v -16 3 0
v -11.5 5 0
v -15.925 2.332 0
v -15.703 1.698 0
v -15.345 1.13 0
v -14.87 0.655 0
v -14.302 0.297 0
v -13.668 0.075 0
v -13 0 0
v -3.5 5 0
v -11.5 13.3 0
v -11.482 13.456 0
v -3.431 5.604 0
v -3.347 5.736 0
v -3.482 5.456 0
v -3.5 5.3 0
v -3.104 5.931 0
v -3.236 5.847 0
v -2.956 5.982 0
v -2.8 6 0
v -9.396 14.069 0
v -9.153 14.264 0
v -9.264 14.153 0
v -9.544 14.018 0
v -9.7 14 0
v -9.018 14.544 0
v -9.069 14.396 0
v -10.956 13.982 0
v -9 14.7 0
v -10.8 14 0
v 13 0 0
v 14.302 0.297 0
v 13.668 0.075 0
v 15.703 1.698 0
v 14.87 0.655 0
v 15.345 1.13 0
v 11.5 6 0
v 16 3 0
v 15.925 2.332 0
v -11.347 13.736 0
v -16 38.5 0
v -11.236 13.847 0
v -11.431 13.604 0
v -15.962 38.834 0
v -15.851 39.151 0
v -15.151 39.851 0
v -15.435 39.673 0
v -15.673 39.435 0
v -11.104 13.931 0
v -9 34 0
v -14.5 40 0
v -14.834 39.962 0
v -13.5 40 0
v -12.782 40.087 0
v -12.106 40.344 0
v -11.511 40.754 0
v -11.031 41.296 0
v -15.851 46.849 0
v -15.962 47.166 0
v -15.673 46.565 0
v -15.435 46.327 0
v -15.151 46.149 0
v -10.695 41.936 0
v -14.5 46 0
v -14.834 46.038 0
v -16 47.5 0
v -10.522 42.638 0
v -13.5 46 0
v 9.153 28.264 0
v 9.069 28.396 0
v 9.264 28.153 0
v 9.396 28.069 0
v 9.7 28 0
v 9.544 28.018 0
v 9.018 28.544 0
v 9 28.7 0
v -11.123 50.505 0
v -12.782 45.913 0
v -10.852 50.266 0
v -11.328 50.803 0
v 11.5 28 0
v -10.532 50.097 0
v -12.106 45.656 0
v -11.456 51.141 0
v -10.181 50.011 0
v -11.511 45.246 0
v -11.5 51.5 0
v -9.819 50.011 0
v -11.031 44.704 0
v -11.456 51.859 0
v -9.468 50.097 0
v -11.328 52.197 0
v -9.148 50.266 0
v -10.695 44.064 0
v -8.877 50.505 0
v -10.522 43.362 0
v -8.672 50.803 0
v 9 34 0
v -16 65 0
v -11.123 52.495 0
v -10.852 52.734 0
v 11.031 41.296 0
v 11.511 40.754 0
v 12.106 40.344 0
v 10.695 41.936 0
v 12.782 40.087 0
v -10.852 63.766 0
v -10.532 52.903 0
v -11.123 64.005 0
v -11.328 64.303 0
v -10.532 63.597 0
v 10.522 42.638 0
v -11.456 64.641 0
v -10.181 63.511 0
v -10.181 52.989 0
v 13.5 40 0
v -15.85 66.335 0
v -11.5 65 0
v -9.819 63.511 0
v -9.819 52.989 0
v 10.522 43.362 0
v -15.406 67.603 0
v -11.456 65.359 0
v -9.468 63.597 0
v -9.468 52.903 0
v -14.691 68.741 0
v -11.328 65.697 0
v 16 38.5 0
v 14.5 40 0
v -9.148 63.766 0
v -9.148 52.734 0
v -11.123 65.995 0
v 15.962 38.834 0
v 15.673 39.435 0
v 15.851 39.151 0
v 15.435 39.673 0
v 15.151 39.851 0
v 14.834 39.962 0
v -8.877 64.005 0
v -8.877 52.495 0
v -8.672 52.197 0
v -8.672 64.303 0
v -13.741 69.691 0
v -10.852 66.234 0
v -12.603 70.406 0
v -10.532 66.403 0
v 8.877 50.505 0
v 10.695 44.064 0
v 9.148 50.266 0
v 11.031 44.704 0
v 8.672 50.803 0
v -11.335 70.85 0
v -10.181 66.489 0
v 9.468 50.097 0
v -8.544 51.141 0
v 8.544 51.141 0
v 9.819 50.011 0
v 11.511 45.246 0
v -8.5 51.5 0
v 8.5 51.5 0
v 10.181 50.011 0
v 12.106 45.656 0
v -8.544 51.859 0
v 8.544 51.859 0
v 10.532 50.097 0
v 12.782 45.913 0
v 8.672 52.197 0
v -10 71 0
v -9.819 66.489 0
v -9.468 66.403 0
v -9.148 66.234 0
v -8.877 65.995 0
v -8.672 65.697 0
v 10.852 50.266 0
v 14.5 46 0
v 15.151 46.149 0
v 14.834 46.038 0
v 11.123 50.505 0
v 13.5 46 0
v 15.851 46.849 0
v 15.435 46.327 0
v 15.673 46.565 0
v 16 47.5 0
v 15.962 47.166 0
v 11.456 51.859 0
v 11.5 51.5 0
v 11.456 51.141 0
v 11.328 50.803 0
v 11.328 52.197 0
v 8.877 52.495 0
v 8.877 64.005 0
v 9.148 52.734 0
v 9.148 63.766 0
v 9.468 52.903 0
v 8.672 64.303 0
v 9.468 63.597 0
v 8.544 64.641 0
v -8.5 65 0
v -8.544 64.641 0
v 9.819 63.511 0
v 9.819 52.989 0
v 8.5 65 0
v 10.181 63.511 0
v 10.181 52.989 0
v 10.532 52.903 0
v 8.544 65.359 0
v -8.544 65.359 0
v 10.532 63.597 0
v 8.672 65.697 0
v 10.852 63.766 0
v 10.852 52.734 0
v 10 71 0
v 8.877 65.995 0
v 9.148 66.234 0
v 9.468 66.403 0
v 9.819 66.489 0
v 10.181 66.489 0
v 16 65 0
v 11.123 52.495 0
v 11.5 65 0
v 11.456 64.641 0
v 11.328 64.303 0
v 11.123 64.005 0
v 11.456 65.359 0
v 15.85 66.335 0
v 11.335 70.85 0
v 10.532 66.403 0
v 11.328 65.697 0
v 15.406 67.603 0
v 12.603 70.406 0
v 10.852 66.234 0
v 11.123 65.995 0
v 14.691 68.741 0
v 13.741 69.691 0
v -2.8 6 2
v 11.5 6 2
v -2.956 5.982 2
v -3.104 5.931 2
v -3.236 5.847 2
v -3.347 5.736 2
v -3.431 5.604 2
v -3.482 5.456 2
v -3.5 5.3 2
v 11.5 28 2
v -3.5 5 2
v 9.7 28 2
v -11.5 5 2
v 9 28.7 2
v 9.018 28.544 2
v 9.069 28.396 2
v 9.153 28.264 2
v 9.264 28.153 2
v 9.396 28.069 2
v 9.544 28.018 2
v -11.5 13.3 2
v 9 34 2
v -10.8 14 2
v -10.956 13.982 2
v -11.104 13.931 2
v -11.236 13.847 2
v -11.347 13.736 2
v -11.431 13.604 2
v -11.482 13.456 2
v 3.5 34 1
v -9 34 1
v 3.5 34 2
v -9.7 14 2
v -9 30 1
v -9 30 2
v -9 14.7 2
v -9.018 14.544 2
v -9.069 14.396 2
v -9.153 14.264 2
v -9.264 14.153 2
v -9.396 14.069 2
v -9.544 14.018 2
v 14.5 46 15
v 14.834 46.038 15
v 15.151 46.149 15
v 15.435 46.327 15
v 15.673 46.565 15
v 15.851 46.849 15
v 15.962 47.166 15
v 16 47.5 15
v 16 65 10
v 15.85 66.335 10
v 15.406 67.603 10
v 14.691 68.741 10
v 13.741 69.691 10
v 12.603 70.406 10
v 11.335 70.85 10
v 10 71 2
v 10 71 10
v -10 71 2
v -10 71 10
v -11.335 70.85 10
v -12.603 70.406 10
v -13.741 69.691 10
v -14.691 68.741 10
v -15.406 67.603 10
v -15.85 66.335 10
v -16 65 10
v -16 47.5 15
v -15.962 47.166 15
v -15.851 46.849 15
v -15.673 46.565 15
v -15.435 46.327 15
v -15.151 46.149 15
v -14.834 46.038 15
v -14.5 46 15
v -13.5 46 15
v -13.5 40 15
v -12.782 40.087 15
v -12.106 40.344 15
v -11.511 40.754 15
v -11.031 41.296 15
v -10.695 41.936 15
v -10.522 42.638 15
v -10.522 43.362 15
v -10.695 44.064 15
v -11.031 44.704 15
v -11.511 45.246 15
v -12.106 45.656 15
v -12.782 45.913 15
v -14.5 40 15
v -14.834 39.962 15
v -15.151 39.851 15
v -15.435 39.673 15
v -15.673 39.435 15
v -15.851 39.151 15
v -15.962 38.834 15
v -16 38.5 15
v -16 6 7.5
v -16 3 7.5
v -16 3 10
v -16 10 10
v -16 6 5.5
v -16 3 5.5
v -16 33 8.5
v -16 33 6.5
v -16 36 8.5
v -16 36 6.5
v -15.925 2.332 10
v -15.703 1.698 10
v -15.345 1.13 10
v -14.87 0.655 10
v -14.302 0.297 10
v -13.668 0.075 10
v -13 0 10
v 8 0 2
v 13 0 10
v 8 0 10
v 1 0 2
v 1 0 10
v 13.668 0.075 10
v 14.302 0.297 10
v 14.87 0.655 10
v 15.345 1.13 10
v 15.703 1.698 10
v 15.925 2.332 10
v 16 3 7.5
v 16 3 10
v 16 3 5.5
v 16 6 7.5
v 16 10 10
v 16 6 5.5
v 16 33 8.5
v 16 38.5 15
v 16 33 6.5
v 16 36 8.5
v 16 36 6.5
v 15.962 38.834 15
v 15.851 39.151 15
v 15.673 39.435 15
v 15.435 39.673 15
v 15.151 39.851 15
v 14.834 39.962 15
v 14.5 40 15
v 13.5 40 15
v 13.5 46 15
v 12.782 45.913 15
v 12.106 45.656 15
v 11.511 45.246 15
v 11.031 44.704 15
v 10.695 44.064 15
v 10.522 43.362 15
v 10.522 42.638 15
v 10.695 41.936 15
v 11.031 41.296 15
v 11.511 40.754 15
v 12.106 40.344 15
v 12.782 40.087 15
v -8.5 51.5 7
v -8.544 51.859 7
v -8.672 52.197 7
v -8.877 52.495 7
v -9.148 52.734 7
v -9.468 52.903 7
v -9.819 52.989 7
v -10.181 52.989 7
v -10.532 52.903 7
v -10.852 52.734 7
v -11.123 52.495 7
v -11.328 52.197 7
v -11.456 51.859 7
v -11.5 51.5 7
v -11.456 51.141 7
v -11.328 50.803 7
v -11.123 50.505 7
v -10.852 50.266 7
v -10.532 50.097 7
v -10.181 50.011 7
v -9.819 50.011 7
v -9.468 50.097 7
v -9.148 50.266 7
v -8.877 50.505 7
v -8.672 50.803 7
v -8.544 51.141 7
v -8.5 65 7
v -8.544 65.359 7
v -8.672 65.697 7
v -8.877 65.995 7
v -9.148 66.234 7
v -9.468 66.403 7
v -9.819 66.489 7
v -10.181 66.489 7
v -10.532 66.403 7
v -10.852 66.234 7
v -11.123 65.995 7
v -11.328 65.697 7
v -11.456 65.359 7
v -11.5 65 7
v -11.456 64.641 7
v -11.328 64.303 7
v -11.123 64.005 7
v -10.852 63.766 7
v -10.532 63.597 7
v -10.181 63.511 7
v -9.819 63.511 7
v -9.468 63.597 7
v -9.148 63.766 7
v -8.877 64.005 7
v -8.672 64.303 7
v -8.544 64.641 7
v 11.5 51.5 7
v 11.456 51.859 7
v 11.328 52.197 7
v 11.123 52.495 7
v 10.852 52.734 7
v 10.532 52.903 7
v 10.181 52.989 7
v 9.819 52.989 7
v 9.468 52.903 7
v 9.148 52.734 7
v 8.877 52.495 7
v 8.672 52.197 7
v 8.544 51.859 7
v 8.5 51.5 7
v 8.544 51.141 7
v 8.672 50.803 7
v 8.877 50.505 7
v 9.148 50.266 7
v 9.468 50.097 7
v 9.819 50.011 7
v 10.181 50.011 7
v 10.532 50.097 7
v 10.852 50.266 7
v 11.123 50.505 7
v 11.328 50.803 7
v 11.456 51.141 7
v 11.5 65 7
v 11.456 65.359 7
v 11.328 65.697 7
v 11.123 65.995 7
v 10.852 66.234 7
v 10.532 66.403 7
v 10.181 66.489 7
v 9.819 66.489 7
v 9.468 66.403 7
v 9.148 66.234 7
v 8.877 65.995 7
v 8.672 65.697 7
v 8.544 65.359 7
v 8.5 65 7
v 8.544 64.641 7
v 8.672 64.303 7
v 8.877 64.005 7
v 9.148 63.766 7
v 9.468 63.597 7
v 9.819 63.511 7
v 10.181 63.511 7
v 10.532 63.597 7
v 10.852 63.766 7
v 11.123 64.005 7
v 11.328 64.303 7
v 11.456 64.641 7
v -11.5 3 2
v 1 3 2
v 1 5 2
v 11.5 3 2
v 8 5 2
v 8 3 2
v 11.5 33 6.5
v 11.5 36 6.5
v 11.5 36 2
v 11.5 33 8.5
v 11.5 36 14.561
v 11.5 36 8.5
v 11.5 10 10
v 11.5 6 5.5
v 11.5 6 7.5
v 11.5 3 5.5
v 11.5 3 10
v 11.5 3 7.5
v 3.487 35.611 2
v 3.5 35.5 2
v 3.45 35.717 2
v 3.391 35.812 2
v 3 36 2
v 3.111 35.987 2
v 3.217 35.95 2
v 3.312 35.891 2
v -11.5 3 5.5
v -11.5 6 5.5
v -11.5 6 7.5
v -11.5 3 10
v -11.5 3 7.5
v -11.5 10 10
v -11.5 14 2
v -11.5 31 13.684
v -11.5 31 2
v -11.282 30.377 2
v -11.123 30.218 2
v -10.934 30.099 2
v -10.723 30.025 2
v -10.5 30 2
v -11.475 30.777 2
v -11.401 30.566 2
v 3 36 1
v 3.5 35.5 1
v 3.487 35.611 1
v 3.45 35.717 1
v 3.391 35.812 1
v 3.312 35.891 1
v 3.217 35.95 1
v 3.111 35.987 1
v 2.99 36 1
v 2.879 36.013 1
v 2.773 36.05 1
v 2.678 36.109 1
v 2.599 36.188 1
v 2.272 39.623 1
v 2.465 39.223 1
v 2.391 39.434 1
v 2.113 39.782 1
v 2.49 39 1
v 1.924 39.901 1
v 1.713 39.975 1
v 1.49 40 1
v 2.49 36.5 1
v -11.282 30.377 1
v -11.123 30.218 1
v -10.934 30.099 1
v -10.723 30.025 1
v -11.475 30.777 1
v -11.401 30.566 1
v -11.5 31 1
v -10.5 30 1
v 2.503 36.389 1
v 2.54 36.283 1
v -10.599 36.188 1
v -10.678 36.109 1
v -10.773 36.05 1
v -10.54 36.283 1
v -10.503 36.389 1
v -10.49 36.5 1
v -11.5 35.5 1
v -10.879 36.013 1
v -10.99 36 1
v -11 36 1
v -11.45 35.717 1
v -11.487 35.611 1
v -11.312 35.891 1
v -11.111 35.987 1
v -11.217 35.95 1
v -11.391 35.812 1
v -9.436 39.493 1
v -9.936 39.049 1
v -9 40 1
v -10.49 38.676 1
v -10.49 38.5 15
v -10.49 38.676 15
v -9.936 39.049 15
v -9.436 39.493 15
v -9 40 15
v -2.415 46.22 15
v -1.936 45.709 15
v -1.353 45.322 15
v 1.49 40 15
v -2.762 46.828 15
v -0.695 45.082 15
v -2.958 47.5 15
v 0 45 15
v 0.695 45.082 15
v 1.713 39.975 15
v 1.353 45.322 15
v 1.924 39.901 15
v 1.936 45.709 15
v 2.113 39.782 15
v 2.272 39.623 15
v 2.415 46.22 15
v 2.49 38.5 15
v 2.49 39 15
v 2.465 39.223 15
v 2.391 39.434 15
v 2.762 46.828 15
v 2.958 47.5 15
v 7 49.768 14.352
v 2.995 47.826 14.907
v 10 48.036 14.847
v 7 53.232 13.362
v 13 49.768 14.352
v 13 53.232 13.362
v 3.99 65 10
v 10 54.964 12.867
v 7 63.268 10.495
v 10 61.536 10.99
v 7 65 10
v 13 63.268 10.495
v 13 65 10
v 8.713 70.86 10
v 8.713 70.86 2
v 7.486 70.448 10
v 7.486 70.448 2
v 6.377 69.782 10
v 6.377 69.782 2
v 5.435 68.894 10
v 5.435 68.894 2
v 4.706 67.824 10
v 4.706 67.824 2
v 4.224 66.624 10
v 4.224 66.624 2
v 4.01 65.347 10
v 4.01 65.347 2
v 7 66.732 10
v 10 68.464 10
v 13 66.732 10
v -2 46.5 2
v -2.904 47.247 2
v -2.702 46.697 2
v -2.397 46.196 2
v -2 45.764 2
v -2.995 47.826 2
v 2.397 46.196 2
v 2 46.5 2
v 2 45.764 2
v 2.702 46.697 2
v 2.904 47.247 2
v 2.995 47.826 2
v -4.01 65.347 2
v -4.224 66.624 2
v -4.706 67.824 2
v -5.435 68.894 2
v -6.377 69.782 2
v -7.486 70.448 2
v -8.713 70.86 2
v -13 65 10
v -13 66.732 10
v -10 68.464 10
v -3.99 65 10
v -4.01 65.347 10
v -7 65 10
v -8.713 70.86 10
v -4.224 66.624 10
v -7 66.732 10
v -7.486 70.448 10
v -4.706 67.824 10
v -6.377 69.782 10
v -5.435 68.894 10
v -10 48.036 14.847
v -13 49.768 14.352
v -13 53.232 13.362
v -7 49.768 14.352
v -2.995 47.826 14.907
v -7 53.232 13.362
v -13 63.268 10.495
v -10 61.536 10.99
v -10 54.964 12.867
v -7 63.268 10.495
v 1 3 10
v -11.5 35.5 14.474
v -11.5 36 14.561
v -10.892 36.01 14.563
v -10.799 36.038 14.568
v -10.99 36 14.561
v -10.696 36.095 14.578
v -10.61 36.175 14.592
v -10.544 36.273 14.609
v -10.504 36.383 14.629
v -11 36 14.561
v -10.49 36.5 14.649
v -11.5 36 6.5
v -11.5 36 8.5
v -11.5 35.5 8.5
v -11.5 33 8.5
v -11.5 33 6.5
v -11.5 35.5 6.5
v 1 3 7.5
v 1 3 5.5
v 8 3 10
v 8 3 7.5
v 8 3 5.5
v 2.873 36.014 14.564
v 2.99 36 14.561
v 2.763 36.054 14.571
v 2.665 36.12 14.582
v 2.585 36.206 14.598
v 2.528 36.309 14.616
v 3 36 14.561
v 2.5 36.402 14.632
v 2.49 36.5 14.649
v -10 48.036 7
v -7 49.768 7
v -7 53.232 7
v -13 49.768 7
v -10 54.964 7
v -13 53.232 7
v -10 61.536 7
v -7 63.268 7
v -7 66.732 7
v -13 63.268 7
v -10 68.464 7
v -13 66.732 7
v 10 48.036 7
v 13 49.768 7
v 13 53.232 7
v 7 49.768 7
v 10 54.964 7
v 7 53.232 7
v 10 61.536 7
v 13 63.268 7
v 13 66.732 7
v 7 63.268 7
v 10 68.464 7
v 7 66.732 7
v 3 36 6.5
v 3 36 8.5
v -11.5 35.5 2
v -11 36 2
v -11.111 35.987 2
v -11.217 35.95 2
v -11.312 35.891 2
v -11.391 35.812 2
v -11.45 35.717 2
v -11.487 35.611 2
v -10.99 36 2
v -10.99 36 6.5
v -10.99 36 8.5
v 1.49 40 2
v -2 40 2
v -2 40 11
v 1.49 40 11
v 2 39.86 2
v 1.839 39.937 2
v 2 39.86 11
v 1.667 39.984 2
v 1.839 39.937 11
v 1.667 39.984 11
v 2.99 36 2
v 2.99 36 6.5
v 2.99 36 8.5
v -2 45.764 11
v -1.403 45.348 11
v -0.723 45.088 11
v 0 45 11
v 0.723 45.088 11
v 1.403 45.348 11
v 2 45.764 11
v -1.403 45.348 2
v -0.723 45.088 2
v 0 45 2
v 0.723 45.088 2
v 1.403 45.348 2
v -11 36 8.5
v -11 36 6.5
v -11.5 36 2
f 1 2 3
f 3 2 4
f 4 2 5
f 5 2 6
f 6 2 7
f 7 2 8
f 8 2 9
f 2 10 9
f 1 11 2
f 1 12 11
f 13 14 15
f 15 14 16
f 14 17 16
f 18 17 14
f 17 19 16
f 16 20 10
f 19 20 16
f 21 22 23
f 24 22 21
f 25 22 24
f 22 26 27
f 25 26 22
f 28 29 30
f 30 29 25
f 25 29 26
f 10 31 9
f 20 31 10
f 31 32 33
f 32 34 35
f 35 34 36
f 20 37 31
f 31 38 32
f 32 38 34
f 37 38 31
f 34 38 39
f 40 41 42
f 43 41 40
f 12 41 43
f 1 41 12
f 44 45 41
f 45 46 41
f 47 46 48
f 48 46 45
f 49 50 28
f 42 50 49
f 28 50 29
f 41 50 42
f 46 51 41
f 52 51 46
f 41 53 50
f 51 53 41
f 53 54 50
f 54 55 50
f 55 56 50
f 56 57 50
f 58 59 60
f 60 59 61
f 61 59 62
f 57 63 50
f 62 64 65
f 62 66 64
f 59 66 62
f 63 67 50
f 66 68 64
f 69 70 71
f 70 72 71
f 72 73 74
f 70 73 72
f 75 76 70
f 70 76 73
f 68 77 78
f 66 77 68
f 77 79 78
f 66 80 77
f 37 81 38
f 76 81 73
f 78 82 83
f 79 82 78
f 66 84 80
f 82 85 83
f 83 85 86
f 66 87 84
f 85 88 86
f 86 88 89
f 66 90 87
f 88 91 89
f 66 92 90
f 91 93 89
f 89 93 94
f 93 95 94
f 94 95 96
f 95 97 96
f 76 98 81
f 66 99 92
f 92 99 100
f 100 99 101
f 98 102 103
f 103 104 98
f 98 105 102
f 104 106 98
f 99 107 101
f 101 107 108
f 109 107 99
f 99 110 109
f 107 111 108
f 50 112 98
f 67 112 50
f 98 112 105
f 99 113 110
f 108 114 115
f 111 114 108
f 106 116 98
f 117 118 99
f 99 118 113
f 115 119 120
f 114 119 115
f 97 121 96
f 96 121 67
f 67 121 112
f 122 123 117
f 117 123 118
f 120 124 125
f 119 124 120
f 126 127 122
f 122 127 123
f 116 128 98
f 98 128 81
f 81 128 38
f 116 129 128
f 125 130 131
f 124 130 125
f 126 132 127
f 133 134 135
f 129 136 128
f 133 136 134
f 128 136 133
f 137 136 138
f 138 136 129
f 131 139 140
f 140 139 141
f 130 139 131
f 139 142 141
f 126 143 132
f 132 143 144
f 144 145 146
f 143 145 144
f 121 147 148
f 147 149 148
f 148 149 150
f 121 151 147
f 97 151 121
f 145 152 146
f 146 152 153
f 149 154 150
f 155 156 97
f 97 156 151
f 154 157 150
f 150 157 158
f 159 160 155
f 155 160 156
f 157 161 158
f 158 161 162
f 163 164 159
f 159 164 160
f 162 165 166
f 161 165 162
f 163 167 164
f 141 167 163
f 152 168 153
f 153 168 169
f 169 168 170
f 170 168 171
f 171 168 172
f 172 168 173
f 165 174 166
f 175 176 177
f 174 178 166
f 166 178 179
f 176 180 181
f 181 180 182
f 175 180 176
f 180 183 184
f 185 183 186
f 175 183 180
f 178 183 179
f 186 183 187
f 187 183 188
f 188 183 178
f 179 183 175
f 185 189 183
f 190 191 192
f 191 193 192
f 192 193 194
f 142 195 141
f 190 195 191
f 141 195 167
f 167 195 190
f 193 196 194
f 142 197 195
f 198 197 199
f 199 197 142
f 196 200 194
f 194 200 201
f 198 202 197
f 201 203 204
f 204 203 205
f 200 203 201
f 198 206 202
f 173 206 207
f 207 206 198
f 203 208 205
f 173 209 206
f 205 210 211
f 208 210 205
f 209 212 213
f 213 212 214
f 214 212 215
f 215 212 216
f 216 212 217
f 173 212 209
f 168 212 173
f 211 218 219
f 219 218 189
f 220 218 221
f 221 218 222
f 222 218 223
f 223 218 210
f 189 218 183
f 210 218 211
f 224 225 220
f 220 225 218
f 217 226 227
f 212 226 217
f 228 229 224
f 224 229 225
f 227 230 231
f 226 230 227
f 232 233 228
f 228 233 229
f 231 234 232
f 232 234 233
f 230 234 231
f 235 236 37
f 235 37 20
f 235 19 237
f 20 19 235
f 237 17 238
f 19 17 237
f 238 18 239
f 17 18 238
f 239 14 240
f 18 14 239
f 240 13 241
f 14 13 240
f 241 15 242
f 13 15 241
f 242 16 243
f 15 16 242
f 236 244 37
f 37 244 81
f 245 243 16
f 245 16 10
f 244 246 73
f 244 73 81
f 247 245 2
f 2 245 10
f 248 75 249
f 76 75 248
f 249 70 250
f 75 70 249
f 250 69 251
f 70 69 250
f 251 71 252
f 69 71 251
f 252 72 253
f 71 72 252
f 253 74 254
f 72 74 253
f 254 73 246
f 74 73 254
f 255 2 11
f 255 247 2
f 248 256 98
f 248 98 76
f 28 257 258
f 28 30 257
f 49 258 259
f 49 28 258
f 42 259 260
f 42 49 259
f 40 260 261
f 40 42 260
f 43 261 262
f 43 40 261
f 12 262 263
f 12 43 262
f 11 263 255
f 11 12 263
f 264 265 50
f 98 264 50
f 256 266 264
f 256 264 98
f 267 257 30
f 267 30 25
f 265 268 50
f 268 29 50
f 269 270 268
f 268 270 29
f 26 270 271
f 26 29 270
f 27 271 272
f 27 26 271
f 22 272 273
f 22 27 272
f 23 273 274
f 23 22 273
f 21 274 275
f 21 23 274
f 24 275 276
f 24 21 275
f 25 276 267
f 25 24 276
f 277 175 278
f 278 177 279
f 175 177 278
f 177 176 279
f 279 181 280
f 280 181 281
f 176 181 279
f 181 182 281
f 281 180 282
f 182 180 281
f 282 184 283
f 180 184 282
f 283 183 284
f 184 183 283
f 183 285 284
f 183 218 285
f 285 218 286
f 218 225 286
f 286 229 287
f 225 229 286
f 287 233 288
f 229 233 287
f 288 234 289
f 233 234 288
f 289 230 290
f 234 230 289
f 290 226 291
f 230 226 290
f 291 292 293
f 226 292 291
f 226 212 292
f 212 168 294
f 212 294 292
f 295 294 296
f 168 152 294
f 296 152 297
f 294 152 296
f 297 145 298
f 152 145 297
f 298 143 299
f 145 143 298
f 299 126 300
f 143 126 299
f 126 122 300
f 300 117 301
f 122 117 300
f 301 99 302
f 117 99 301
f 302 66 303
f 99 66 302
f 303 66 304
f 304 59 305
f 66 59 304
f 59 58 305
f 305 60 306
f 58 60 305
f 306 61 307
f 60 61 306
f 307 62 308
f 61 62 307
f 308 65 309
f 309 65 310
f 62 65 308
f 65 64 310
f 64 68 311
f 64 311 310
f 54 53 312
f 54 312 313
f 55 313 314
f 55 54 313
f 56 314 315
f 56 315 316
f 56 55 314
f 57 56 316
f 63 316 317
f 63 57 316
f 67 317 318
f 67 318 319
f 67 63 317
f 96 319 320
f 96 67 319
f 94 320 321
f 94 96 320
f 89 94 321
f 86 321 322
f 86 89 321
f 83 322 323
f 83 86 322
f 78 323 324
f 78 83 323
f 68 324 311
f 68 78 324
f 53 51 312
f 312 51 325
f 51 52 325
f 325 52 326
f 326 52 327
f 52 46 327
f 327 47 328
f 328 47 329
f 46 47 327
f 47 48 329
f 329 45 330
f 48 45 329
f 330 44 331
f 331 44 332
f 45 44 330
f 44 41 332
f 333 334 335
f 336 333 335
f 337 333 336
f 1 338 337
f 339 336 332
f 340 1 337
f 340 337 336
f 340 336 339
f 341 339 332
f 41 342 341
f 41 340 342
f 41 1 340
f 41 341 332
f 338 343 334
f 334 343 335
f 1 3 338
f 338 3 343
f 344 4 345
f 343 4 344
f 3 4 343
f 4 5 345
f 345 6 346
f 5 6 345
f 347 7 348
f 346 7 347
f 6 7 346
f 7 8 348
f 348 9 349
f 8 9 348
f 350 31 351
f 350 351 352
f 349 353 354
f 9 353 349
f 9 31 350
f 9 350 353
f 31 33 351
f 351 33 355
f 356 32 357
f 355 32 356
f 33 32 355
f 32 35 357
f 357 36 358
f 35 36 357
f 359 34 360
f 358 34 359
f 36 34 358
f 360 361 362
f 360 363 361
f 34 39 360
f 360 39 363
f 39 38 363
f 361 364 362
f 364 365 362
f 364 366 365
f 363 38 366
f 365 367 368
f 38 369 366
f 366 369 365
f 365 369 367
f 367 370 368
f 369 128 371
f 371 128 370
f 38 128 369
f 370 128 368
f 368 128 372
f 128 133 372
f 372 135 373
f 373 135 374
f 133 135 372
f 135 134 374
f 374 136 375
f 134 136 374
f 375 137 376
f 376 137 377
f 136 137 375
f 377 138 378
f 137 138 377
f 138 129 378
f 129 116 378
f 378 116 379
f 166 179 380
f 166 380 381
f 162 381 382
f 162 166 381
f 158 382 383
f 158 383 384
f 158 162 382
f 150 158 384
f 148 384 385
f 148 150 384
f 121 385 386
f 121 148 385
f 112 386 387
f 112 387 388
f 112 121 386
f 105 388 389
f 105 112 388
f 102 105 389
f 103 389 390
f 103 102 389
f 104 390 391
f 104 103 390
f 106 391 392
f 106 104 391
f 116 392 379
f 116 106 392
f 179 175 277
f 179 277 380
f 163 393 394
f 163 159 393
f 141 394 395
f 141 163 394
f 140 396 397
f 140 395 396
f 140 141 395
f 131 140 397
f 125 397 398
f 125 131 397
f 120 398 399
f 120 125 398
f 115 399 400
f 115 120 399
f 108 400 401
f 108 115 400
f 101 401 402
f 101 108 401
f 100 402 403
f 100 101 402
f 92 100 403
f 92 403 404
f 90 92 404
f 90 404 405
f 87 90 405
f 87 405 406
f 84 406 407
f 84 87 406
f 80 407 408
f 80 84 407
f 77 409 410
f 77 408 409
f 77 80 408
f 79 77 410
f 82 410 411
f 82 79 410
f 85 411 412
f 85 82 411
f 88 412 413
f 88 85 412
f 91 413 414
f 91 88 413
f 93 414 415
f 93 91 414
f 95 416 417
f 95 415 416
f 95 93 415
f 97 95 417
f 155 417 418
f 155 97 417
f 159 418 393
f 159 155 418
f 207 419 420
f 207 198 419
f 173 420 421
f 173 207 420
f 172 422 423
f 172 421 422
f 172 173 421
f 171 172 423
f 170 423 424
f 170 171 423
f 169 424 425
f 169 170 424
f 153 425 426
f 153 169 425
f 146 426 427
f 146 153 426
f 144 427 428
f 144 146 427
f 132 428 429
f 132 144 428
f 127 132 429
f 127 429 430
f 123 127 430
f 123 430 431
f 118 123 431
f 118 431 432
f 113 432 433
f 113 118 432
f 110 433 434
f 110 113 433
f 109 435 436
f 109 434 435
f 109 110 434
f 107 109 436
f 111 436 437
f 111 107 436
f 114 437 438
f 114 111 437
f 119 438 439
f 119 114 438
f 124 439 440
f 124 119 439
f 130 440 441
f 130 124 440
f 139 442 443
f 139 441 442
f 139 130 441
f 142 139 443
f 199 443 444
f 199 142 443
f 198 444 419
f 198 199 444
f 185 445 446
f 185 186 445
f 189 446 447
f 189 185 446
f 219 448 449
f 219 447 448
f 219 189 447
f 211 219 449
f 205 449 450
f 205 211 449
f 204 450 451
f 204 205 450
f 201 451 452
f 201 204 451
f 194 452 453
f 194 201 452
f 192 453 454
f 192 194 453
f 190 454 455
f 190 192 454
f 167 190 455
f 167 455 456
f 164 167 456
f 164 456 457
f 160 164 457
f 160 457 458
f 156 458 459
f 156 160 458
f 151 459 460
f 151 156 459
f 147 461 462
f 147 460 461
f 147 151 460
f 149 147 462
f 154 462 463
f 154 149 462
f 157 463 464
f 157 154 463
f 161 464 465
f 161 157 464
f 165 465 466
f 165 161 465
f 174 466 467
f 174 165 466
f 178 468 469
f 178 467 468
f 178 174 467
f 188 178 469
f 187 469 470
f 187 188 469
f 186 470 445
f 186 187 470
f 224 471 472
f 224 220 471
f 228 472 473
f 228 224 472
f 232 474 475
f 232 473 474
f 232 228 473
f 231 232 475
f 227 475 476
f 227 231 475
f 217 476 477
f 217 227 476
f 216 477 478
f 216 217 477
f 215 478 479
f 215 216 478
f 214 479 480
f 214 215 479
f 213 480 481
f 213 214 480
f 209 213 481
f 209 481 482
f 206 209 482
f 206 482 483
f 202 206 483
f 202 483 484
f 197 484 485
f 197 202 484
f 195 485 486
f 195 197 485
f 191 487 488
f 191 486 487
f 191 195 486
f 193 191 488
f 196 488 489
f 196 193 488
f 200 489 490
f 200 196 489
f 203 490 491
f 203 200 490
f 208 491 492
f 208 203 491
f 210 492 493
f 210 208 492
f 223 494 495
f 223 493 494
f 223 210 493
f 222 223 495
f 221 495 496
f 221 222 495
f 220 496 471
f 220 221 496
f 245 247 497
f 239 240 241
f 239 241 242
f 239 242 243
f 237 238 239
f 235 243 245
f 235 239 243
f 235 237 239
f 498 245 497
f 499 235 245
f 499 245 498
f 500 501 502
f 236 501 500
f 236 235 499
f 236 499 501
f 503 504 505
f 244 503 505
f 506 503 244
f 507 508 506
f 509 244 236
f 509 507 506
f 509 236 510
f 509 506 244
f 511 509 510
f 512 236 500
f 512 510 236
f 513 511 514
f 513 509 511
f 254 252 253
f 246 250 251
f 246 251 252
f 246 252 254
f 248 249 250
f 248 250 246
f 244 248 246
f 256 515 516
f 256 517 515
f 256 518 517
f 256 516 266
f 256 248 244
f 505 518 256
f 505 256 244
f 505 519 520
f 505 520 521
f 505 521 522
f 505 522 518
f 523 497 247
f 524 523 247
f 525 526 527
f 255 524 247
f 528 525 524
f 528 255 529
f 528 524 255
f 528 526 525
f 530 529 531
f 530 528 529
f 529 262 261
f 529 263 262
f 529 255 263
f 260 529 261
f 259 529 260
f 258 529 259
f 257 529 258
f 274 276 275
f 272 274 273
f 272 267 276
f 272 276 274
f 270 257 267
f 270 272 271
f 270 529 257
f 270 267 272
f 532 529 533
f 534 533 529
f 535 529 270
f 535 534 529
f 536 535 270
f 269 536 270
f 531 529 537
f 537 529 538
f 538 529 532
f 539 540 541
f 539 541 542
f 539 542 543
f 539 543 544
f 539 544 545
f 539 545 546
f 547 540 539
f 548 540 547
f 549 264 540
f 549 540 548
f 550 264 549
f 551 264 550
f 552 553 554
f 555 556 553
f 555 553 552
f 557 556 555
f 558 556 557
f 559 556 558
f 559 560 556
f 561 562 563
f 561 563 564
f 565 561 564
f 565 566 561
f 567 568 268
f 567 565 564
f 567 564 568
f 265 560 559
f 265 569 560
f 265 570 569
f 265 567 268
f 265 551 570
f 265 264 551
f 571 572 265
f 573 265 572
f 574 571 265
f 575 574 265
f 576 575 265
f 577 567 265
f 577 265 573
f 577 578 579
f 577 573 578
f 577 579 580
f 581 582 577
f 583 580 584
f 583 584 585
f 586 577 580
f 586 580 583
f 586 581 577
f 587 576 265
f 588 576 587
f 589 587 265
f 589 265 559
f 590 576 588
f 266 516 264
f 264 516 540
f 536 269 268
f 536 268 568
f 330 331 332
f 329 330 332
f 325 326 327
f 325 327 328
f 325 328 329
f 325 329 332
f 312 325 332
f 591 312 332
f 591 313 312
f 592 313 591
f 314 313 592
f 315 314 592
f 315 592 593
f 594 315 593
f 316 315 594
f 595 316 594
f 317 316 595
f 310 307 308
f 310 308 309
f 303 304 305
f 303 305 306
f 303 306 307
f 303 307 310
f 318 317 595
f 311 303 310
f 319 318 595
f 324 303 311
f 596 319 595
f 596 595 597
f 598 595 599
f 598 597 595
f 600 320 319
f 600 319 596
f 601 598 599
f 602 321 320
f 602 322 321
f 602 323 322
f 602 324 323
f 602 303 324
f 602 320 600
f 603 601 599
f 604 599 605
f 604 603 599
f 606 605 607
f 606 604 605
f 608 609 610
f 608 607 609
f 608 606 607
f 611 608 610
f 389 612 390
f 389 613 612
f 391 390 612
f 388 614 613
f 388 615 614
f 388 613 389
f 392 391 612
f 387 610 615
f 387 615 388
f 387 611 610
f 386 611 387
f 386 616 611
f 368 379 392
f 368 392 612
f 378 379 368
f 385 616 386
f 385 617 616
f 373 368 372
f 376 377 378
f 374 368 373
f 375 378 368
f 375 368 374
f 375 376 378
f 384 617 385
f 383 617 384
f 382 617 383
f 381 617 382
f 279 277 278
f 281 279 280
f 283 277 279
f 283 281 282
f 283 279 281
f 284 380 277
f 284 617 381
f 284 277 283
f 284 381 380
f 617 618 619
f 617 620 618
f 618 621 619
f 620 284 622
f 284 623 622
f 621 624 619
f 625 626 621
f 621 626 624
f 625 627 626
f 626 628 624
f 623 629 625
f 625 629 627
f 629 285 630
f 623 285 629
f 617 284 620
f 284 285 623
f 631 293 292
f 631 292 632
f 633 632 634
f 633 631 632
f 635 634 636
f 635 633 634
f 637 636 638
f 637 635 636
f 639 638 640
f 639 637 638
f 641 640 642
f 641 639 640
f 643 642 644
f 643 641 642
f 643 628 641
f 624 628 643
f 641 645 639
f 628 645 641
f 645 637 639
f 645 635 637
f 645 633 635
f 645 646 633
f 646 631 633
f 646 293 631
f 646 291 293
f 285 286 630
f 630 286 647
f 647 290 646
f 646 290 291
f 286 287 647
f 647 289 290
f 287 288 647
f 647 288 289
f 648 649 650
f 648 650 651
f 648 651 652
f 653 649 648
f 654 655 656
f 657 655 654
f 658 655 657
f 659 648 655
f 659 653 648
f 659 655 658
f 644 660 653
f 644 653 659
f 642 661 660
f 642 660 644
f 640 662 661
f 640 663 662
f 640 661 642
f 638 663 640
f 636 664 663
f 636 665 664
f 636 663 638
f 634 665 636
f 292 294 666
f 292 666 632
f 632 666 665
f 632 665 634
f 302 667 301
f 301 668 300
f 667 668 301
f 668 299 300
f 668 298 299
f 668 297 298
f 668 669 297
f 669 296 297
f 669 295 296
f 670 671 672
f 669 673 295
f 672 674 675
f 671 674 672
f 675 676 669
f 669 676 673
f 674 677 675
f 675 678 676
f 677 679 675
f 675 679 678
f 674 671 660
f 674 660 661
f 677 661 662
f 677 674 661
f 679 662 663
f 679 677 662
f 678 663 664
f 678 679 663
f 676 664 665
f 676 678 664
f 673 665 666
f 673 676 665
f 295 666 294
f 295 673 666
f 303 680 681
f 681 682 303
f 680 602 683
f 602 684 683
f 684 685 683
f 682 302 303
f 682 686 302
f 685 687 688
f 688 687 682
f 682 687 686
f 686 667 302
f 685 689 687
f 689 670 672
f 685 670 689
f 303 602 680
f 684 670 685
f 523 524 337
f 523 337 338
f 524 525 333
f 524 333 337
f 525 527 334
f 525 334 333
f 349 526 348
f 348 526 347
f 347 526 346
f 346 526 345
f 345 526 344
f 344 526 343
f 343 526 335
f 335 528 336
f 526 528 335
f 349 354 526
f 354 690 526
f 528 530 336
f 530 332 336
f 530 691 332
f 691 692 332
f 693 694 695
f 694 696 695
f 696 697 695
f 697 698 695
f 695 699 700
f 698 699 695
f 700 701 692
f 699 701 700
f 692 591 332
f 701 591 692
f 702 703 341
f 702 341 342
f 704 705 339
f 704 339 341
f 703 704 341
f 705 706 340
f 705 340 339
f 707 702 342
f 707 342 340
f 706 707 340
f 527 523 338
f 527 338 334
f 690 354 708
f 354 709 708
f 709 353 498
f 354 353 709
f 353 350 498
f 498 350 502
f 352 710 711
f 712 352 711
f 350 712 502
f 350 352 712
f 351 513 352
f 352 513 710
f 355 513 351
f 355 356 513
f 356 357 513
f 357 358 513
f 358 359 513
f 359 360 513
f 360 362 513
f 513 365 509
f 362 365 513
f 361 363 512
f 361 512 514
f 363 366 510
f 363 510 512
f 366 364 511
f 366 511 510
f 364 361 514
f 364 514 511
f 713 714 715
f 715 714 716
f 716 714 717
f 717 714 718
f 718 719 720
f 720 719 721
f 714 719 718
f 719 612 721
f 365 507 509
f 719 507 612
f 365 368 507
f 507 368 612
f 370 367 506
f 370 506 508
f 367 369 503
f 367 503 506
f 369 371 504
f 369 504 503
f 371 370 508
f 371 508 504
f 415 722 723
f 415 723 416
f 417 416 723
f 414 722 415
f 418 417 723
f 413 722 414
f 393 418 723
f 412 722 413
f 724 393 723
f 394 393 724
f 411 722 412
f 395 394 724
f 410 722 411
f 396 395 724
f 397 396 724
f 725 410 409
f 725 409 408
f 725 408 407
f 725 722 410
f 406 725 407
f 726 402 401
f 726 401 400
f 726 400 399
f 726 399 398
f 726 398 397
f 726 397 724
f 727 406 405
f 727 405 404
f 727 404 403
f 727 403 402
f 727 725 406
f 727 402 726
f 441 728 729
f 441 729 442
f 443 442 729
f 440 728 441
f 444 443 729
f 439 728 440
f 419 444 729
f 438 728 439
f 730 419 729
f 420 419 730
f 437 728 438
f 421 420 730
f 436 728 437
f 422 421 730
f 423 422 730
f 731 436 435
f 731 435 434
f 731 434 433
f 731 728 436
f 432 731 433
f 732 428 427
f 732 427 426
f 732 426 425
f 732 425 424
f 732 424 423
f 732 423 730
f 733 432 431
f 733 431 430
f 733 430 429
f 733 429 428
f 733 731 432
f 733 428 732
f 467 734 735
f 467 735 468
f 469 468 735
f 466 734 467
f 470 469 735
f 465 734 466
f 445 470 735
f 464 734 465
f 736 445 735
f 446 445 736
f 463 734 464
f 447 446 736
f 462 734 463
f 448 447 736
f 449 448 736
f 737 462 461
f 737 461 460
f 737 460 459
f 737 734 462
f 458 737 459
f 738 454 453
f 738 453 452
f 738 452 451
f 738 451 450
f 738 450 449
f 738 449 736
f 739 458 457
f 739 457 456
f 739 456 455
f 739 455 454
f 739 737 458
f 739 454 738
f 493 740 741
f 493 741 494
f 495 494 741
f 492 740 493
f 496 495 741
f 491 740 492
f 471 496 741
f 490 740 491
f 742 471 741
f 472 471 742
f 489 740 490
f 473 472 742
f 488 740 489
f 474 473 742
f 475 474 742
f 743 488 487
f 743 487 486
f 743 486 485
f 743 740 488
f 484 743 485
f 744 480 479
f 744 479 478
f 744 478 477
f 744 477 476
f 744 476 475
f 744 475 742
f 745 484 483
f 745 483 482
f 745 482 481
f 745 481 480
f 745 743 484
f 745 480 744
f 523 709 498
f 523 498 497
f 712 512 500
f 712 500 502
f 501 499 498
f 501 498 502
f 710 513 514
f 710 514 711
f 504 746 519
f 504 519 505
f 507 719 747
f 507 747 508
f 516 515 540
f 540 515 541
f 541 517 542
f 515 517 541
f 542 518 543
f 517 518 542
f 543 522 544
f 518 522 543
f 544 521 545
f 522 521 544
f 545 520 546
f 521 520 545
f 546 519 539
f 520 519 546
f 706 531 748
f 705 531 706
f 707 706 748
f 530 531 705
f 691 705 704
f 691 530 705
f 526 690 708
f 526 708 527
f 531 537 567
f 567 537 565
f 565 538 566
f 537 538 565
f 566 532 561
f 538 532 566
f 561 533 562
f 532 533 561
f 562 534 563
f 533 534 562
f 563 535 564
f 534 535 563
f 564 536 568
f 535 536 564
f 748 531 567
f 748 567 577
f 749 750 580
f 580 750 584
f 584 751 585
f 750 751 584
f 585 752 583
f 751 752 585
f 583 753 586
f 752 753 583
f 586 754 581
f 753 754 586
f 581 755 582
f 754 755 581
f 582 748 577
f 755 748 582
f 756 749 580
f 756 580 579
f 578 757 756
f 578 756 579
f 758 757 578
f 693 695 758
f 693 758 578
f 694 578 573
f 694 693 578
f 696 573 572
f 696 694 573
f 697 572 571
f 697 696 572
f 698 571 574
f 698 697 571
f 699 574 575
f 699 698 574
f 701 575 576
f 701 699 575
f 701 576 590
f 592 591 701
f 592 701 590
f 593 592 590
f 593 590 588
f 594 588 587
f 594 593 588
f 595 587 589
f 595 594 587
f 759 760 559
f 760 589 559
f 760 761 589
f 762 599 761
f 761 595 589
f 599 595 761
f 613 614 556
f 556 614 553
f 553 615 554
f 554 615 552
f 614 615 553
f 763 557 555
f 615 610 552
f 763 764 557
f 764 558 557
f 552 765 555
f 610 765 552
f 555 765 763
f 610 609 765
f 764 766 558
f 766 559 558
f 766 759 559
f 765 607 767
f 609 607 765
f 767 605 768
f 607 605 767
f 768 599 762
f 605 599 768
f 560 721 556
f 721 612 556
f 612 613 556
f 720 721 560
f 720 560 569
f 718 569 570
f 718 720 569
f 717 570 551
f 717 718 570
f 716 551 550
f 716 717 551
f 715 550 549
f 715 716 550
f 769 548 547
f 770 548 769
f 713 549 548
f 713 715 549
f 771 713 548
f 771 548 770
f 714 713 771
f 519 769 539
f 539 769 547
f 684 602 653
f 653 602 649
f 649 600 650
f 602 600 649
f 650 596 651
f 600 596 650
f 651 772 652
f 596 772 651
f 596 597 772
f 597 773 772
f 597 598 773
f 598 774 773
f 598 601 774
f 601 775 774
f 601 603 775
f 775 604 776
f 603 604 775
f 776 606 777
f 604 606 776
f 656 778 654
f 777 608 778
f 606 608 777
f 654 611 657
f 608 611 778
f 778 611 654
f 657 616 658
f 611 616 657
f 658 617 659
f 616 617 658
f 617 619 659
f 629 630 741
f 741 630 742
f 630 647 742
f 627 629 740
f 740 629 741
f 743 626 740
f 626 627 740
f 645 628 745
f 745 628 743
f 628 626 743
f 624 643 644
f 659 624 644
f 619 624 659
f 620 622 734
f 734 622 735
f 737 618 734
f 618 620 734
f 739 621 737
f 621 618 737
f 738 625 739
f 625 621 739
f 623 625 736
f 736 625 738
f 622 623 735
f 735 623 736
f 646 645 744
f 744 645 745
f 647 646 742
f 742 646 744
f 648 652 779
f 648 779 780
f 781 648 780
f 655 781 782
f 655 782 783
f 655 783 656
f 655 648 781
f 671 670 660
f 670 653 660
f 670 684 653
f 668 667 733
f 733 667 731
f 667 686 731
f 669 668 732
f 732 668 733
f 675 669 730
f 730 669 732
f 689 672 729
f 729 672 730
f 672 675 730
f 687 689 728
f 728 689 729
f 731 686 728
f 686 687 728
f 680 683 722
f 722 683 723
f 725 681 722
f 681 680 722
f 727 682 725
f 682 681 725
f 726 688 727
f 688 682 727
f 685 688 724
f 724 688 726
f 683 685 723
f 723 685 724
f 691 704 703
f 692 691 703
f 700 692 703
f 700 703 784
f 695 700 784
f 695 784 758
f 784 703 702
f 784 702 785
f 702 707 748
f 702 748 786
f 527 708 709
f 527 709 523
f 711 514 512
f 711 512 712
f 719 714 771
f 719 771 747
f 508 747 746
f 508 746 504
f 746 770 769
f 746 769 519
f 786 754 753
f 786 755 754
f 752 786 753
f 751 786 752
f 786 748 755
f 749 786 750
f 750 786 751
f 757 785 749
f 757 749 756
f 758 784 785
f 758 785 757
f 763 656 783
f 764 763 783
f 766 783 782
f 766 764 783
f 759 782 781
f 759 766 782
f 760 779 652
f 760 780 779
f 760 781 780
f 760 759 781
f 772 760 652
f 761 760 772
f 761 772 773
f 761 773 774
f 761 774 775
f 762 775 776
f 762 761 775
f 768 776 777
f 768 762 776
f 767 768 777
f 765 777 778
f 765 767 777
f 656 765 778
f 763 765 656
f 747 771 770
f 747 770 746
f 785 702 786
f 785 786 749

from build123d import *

# Parameters (mm, degrees)
PAD_DEPTH       = 15
SKETCH001_W     = 23
SKETCH001_H     = 33
POCKET_DEPTH    = 13
SKETCH002_R     = 1.5
HOLE_DEPTH      = 25
POCKET001_DEPTH = 8
POCKET002_DEPTH = 5
SKETCH006_W     = 7
SKETCH006_H     = 8
POCKET004_DEPTH = 5
SKETCH007_W     = 3
SKETCH007_H     = 2
POCKET005_DEPTH = 50
POCKET006_DEPTH = 50
FILLET_R        = 0.7
POCKET008_DEPTH = 14
SKETCH009_W     = 4
SKETCH009_H     = 9
POCKET009_DEPTH = 6.5
FILLET001_R     = 0.7
FILLET002_R     = 0.7


with BuildPart() as part:
    # Sketch → Pad (new body)
    with BuildSketch(Plane.XY):
        with BuildLine():
            ThreePointArc((14.5, 46), (15.56066, 46.43934), (16, 47.5))
            Line((16, 47.5), (16, 65))
            ThreePointArc((16, 65), (14.242641, 69.242641), (10, 71))
            Line((-10, 71), (10, 71))
            ThreePointArc((-10, 71), (-14.242641, 69.242641), (-16, 65))
            Line((-16, 47.5), (-16, 65))
            ThreePointArc((-16, 47.5), (-15.56066, 46.43934), (-14.5, 46))
            Line((-13.5, 46), (-14.5, 46))
            ThreePointArc((-13.5, 40), (-10.5, 43), (-13.5, 46))
            Line((-13.5, 40), (-14.5, 40))
            ThreePointArc((-14.5, 40), (-15.56066, 39.56066), (-16, 38.5))
            Line((-16, 3), (-16, 38.5))
            ThreePointArc((-16, 3), (-15.12132, 0.87868), (-13, 0))
            Line((13, 0), (-13, 0))
            ThreePointArc((13, 0), (15.12132, 0.87868), (16, 3))
            Line((16, 3), (16, 38.5))
            ThreePointArc((16, 38.5), (15.56066, 39.56066), (14.5, 40))
            Line((14.5, 40), (13.5, 40))
            ThreePointArc((13.5, 46), (10.5, 43), (13.5, 40))
            Line((14.5, 46), (13.5, 46))
        make_face()
    extrude(amount=PAD_DEPTH)

    # Sketch001 (on Face22 of Pad) → Pocket (cut)
    with BuildSketch(Plane.XY.offset(15)):
        with Locations((0, 19.5)):
            Rectangle(SKETCH001_W, SKETCH001_H)
        with BuildLine():
            Line((-4.010044, 65.347033), (-2.994978, 47.826484))
            ThreePointArc((-2.994978, 47.826484), (0, 45), (2.994978, 47.826484))
            Line((4.010044, 65.347033), (2.994978, 47.826484))
            ThreePointArc((10, 71), (5.881881, 69.363611), (4.010044, 65.347033))
            Line((10, 74.59), (10, 71))
            Line((-10, 74.59), (10, 74.59))
            Line((-10, 71), (-10, 74.59))
            ThreePointArc((-4.010044, 65.347033), (-5.881881, 69.363611), (-10, 71))
        make_face()
    extrude(amount=-POCKET_DEPTH, mode=Mode.SUBTRACT)

    # Sketch002 (on Face5 of Pocket) → Hole (cut)
    with BuildSketch(Plane.XY.offset(15)):
        with Locations((-10, 65)):
            Circle(SKETCH002_R)
        with Locations((10, 65)):
            Circle(SKETCH002_R)
        with Locations((-10, 51.5)):
            Circle(SKETCH002_R)
        with Locations((10, 51.5)):
            Circle(SKETCH002_R)
    extrude(amount=-HOLE_DEPTH, mode=Mode.SUBTRACT)

    # Sketch003 (on Face5 of Hole) → Pocket001 (cut)
    with BuildSketch(Plane.XY.offset(15)):
        Polygon((-7, 63.267949), (-7, 66.732051), (-10, 68.464102), (-13, 66.732051), (-13, 63.267949), (-10, 61.535898), align=None)
        Polygon((-7, 49.767949), (-7, 53.232051), (-10, 54.964102), (-13, 53.232051), (-13, 49.767949), (-10, 48.035898), align=None)
        Polygon((13, 49.767949), (13, 53.232051), (10, 54.964102), (7, 53.232051), (7, 49.767949), (10, 48.035898), align=None)
        Polygon((13, 63.267949), (13, 66.732051), (10, 68.464102), (7, 66.732051), (7, 63.267949), (10, 61.535898), align=None)
    extrude(amount=-POCKET001_DEPTH, mode=Mode.SUBTRACT)

    # Sketch004 (on Face65 of Pocket001) → Pocket002 (cut)
    with BuildSketch(Plane.XY.offset(2)):
        Polygon((-11.5, 5), (-3.5, 5), (-3.5, 6), (11.5, 6), (11.5, 28), (9, 28), (9, 34), (-9, 34), (-9, 14), (-11.5, 14), align=None)
    extrude(amount=-POCKET002_DEPTH, mode=Mode.SUBTRACT)

    # Sketch006 → Pocket004 (cut)
    with BuildSketch(Plane.XZ):
        with Locations((4.5, 6)):
            Rectangle(SKETCH006_W, SKETCH006_H)
    extrude(amount=-POCKET004_DEPTH, mode=Mode.SUBTRACT)

    # Sketch007 (on Face12 of Pocket004) → Pocket005 (cut)
    with BuildSketch(Plane.YZ.offset(16)):
        with Locations((4.5, 6.5)):
            Rectangle(SKETCH007_W, SKETCH007_H)
        with Locations((34.5, 7.5)):
            Rectangle(SKETCH007_W, SKETCH007_H)
    extrude(amount=-POCKET005_DEPTH, mode=Mode.SUBTRACT)

    # Sketch008 (on Face12 of Pocket005) → Pocket006 (cut)
    with BuildSketch(Plane.YZ.offset(16)):
        Polygon((0, 10), (10, 10), (38.5, 15), (47.5, 15), (65, 10), (71, 10), (71, 16.83), (0, 16.83), align=None)
    extrude(amount=-POCKET006_DEPTH, mode=Mode.SUBTRACT)

    # Fillet
    fillet_edges = [part.edges().sort_by_distance(p)[0] for p in [
        (-9, 14, 1),
        (-11.5, 14, 1),
    ]]
    fillet(fillet_edges, radius=FILLET_R)

    # MirroredSketch → Pocket008 (cut)
    with BuildSketch(Plane.XY.offset(15)):
        with BuildLine():
            Line((2.5, 30), (-10.5, 30))
            ThreePointArc((-11.5, 31), (-11.207107, 30.292893), (-10.5, 30))
            Line((-11.5, 31), (-11.5, 35.5))
            ThreePointArc((-11, 36), (-11.353553, 35.853553), (-11.5, 35.5))
            Line((-11, 36), (-10.99, 36))
            ThreePointArc((-10.99, 36), (-10.636447, 36.146447), (-10.49, 36.5))
            Line((-10.49, 36.5), (-10.49, 38.675662))
            ThreePointArc((-10.49, 38.675662), (-9.67833, 39.262821), (-9, 40))
            Line((1.49, 40), (-9, 40))
            ThreePointArc((2.49, 39), (2.197107, 39.707107), (1.49, 40))
            Line((2.49, 36.5), (2.49, 39))
            ThreePointArc((2.49, 36.5), (2.636447, 36.146447), (2.99, 36))
            Line((3, 36), (2.99, 36))
            ThreePointArc((3.5, 35.5), (3.353553, 35.853553), (3, 36))
            Line((3.5, 31), (3.5, 35.5))
            ThreePointArc((2.5, 30), (3.207107, 30.292893), (3.5, 31))
        make_face()
    extrude(amount=-POCKET008_DEPTH, mode=Mode.SUBTRACT)

    # Sketch009 (on Face88 of Pocket008) → Pocket009 (cut, symmetric)
    with BuildSketch(Plane.XZ.offset(-40)):
        with Locations((0, 6.5)):
            Rectangle(SKETCH009_W, SKETCH009_H)
    extrude(amount=POCKET009_DEPTH, both=True, mode=Mode.SUBTRACT)

    # Fillet001
    fillet001_edges = [part.edges().sort_by_distance(p)[0] for p in [
        (9, 28, 1),
    ]]
    fillet(fillet001_edges, radius=FILLET001_R)

    # Fillet002
    fillet002_edges = [part.edges().sort_by_distance(p)[0] for p in [
        (-3.5, 6, 1),
    ]]
    fillet(fillet002_edges, radius=FILLET002_R)


solid = part.part
